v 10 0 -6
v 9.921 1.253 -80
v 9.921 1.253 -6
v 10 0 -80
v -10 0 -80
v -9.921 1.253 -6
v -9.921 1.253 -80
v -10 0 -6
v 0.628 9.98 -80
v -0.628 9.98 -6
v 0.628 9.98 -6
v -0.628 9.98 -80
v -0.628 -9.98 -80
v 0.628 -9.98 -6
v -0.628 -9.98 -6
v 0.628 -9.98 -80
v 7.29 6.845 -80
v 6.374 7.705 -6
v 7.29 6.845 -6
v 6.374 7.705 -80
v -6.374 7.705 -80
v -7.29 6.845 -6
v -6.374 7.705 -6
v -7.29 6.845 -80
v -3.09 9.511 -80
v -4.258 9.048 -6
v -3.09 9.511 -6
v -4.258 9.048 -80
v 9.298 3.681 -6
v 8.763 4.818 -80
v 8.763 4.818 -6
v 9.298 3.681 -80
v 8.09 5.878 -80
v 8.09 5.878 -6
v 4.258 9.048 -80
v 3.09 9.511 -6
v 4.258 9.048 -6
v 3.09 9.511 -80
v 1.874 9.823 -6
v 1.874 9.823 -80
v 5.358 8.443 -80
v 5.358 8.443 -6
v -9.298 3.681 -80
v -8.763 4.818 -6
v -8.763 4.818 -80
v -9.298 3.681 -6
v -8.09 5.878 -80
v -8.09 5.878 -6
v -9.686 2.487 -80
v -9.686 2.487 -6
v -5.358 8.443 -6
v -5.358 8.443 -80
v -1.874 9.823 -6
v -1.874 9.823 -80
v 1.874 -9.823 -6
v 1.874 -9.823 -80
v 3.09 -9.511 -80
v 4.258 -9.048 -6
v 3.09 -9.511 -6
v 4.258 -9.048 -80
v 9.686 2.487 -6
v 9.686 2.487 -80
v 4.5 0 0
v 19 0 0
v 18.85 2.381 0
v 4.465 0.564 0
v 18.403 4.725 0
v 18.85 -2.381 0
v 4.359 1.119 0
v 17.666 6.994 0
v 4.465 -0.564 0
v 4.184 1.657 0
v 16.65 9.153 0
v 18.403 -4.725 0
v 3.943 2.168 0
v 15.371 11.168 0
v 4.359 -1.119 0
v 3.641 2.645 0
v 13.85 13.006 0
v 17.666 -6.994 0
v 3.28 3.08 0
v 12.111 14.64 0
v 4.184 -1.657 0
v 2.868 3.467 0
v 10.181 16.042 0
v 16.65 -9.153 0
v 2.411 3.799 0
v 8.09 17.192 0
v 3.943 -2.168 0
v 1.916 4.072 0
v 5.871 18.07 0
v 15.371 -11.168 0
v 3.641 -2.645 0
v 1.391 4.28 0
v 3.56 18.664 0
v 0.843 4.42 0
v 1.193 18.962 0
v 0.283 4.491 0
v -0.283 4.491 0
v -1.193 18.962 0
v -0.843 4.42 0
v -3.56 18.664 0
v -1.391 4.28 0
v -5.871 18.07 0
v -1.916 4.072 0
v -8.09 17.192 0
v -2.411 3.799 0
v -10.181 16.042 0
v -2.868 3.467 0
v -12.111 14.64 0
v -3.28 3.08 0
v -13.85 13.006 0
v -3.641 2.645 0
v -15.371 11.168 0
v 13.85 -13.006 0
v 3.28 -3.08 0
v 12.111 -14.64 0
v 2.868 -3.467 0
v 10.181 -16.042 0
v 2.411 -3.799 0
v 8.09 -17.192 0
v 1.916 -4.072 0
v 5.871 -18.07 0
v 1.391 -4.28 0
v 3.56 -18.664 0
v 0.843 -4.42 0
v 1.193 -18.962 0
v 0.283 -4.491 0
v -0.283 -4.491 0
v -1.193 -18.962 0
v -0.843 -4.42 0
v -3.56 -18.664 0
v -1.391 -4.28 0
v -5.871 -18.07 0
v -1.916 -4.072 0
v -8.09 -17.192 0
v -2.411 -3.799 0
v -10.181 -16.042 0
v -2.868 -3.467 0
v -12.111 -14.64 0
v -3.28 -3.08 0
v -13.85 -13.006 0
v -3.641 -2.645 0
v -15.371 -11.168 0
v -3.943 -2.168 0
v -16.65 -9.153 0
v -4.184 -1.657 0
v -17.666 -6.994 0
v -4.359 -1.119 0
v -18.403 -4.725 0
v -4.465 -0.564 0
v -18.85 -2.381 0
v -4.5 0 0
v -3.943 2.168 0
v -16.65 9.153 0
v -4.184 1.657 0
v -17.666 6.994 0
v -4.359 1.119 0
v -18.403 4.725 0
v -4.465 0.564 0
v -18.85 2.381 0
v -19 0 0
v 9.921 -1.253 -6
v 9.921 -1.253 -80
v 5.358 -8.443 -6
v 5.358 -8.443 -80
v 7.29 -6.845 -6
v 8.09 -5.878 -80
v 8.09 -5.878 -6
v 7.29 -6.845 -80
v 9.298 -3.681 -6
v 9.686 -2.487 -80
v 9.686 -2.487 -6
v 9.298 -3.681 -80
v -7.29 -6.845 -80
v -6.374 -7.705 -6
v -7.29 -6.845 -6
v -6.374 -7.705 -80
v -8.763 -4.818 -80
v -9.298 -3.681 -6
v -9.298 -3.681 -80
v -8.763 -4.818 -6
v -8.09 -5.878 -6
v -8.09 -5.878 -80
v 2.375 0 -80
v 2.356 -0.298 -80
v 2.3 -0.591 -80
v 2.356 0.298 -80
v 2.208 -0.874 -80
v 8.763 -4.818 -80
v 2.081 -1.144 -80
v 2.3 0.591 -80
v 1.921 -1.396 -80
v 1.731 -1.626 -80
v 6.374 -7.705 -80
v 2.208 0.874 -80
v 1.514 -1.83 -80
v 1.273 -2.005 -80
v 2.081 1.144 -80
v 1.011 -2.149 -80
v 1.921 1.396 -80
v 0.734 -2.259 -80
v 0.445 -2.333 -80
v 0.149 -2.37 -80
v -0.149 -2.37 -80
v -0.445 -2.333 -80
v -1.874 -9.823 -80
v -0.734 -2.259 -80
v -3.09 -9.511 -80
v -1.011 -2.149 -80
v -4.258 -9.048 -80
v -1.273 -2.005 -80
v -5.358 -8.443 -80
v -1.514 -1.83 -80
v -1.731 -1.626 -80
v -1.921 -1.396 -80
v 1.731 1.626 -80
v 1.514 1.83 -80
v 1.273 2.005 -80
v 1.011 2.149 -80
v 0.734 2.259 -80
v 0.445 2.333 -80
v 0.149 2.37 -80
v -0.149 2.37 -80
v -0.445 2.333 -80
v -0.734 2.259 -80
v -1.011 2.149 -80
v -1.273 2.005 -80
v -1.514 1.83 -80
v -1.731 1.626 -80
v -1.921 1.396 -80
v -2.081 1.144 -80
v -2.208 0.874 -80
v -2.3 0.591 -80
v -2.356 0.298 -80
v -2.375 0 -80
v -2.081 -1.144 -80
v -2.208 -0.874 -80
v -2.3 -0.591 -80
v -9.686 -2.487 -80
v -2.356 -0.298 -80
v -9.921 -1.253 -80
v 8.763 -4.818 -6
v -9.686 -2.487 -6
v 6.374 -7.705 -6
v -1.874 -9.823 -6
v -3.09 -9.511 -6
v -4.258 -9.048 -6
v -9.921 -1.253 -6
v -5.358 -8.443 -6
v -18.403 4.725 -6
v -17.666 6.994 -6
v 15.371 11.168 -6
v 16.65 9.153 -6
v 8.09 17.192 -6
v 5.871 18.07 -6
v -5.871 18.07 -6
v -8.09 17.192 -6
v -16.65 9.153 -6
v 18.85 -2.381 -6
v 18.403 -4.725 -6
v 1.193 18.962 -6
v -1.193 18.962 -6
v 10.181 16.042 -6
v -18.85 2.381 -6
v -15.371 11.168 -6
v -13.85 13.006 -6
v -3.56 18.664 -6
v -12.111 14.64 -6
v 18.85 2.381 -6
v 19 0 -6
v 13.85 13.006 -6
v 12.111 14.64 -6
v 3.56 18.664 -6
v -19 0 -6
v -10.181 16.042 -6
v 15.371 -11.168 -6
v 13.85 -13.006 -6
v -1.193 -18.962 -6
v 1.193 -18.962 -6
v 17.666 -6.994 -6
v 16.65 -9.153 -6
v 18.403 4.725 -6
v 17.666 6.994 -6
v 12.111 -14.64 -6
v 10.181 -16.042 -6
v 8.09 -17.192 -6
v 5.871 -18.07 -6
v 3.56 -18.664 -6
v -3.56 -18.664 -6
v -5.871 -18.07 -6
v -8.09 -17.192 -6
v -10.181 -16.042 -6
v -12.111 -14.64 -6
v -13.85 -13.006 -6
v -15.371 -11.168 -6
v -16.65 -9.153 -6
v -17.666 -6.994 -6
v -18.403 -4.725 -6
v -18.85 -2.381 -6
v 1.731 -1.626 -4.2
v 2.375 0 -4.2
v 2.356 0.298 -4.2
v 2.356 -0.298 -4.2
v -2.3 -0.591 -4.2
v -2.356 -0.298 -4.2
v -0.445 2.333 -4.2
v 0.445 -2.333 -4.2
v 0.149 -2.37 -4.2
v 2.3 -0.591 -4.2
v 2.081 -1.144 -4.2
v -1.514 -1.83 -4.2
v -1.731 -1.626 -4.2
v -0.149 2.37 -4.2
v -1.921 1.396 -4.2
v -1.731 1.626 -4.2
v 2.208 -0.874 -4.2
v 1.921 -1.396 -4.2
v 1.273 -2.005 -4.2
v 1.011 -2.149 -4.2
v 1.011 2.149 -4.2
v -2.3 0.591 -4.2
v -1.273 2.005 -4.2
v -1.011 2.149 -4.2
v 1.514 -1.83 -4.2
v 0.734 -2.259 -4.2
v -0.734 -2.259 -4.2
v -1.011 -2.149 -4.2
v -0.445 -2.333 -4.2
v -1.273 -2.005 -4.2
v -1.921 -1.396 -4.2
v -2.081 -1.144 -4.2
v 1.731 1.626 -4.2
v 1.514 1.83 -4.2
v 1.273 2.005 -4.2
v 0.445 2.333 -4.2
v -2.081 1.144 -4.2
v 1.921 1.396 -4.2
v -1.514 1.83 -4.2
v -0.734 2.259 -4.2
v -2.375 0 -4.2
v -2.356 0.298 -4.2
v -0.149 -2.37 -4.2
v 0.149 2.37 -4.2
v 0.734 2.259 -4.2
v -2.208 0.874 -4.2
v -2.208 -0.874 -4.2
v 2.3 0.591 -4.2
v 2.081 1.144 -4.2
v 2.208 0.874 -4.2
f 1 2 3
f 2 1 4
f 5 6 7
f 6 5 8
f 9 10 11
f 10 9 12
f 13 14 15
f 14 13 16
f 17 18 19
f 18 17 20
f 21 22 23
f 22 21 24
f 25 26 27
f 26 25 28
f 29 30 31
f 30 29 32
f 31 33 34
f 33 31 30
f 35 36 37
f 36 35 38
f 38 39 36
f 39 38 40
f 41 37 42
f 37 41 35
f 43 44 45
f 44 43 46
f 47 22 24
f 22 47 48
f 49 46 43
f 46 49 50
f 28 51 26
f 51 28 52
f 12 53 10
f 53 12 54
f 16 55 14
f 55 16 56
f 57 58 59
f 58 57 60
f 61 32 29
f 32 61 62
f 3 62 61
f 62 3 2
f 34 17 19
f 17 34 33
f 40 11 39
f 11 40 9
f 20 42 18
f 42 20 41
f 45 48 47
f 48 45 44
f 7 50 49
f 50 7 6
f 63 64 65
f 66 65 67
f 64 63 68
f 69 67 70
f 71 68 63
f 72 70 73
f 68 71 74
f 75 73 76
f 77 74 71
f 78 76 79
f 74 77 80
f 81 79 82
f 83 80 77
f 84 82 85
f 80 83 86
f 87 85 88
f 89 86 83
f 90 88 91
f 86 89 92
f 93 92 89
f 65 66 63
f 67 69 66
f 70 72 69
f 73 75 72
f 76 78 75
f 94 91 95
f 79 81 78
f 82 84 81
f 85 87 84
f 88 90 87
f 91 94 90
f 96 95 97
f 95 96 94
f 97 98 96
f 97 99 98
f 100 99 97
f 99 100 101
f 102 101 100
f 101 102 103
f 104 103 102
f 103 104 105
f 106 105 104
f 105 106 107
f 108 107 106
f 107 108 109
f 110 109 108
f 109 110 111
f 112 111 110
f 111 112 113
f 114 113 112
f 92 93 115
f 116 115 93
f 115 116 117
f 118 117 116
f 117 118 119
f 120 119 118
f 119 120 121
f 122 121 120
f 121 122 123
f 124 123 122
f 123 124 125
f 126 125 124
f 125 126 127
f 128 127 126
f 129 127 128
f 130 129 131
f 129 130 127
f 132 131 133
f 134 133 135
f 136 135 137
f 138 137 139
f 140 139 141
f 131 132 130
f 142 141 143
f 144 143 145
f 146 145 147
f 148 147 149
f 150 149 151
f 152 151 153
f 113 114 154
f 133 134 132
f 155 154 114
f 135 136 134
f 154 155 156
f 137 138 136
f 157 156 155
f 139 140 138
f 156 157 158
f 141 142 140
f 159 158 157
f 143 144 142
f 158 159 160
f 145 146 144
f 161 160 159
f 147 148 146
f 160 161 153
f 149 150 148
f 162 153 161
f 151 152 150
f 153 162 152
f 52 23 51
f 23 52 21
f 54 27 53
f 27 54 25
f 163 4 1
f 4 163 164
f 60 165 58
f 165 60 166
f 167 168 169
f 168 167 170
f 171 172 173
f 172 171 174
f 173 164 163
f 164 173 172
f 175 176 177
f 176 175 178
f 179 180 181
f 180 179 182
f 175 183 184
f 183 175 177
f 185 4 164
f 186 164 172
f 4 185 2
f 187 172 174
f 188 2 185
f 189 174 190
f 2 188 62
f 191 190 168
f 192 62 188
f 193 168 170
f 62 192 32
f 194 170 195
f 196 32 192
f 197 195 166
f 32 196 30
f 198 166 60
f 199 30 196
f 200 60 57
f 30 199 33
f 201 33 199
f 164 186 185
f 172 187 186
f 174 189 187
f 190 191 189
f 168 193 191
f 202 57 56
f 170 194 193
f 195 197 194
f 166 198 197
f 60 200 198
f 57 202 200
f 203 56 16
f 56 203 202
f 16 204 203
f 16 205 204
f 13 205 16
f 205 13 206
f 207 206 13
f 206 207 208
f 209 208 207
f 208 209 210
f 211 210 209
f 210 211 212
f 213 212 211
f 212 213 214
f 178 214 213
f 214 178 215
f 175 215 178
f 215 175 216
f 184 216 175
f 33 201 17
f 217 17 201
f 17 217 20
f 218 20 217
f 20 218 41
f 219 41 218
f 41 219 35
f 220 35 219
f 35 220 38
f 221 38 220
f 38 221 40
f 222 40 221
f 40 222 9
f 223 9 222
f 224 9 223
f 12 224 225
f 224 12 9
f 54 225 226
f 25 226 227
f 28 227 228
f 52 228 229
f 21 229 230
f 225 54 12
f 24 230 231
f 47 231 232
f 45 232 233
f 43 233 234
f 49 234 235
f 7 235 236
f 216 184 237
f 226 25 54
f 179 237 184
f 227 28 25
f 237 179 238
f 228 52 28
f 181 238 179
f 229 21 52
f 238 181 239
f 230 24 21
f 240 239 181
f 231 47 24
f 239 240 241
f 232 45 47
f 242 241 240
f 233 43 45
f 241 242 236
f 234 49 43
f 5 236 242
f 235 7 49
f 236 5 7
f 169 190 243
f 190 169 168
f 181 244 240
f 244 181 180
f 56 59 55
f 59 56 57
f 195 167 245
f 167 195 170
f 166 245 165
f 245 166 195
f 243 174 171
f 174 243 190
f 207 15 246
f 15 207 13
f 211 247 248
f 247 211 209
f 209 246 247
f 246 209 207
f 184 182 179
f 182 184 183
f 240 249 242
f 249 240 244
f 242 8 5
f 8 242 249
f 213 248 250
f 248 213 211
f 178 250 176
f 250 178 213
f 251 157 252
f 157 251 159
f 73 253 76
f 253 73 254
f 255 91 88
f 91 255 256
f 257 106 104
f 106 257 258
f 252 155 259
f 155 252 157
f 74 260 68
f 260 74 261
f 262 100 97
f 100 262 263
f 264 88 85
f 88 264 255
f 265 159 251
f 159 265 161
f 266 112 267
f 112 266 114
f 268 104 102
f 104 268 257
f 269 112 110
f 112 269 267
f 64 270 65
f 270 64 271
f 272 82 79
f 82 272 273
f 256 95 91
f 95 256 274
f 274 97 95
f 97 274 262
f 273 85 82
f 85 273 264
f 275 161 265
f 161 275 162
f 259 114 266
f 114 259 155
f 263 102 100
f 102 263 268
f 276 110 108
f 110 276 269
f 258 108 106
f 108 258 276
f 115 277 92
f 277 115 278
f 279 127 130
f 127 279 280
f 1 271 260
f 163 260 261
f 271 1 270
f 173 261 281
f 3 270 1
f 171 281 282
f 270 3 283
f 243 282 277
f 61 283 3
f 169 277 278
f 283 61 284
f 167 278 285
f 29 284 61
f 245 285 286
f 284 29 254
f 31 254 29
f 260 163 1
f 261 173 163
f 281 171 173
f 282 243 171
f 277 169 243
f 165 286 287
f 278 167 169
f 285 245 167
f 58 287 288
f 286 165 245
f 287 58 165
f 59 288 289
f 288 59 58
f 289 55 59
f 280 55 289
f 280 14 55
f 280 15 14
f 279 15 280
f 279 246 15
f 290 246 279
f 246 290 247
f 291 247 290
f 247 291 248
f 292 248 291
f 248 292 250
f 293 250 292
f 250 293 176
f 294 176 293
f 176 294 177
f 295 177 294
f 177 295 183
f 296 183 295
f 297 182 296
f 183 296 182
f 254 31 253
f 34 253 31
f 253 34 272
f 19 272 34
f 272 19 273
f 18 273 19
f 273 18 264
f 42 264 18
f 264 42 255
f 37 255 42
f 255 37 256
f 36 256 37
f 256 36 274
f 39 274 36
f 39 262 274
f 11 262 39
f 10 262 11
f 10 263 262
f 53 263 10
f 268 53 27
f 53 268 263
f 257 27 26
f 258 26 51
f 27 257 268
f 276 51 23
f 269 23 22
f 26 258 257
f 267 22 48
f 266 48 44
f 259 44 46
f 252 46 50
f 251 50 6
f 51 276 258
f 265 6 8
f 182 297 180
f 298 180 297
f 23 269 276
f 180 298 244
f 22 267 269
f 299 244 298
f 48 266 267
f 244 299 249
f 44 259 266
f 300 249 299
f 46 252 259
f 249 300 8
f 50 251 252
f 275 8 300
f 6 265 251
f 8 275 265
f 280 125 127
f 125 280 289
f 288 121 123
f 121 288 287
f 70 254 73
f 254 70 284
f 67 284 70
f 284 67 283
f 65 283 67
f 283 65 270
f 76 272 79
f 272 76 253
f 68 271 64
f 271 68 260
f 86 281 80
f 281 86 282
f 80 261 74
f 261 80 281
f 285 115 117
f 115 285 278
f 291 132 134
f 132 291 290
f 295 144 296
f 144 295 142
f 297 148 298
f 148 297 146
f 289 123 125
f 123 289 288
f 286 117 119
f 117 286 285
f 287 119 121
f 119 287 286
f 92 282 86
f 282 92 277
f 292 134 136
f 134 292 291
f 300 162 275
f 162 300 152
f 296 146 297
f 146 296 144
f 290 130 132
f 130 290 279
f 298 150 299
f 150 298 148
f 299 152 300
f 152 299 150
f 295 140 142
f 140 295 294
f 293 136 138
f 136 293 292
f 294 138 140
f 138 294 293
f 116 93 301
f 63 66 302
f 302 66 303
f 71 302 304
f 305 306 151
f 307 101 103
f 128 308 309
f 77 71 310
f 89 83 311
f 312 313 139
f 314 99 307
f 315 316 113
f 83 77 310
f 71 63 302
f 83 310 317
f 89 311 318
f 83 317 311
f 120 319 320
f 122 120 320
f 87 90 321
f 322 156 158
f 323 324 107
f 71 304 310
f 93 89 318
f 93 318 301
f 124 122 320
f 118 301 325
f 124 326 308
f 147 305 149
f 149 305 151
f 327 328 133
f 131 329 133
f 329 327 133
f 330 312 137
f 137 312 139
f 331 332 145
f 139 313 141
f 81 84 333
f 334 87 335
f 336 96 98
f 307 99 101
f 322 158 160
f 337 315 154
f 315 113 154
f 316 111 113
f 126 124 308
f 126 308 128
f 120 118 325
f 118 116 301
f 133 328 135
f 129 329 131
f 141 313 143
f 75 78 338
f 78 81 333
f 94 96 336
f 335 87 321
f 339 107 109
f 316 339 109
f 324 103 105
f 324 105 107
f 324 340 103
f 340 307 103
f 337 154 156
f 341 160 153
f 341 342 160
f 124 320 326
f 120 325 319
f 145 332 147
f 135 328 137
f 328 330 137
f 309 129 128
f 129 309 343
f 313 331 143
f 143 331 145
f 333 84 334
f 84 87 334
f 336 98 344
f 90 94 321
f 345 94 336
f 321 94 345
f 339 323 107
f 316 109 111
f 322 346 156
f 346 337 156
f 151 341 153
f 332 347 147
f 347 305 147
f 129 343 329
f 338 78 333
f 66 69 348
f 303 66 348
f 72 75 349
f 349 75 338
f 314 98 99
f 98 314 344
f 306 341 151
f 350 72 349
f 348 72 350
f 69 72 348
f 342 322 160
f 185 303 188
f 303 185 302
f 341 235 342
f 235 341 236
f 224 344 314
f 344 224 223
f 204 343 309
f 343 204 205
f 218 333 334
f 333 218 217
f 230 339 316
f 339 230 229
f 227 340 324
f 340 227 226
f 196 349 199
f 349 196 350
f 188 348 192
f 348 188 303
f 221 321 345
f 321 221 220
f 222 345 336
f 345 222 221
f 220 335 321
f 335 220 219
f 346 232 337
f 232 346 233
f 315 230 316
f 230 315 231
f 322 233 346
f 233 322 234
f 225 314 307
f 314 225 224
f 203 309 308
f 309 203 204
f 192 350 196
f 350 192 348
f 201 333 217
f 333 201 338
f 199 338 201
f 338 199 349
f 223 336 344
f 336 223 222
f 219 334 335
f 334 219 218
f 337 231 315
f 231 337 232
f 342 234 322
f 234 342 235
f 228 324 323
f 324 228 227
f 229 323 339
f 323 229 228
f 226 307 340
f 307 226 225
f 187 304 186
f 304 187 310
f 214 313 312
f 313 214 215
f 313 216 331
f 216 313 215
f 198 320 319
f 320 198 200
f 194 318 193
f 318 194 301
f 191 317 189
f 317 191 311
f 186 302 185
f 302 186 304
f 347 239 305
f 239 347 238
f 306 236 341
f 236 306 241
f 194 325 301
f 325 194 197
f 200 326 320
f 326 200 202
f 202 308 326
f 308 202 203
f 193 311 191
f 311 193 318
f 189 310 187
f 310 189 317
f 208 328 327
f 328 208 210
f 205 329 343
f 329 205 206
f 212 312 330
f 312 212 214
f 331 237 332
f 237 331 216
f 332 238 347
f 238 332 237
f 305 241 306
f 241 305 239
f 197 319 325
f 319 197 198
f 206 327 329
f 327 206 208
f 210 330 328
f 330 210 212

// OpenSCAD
$fn = 50;


difference() {
	union() {
		translate(v = [0, 0, -80.0000000000]) {
			cylinder(h = 80, r = 10.0000000000);
		}
		translate(v = [0, 0, -6.0000000000]) {
			cylinder(h = 6, r = 19.0000000000);
		}
	}
	union() {
		translate(v = [0, 0, 0]) {
			rotate(a = [0, 0, 0]) {
				difference() {
					union() {
						#translate(v = [0, 0, -80.0000000000]) {
							cylinder(h = 80, r = 2.2500000000);
						}
						#translate(v = [0, 0, -4.2000000000]) {
							cylinder(h = 4.2000000000, r1 = 2.3750000000, r2 = 4.5000000000);
						}
						#translate(v = [0, 0, -80.0000000000]) {
							cylinder(h = 80, r = 2.3750000000);
						}
						#translate(v = [0, 0, -80.0000000000]) {
							cylinder(h = 80, r = 2.2500000000);
						}
					}
					union();
				}
			}
		}
	}
}
